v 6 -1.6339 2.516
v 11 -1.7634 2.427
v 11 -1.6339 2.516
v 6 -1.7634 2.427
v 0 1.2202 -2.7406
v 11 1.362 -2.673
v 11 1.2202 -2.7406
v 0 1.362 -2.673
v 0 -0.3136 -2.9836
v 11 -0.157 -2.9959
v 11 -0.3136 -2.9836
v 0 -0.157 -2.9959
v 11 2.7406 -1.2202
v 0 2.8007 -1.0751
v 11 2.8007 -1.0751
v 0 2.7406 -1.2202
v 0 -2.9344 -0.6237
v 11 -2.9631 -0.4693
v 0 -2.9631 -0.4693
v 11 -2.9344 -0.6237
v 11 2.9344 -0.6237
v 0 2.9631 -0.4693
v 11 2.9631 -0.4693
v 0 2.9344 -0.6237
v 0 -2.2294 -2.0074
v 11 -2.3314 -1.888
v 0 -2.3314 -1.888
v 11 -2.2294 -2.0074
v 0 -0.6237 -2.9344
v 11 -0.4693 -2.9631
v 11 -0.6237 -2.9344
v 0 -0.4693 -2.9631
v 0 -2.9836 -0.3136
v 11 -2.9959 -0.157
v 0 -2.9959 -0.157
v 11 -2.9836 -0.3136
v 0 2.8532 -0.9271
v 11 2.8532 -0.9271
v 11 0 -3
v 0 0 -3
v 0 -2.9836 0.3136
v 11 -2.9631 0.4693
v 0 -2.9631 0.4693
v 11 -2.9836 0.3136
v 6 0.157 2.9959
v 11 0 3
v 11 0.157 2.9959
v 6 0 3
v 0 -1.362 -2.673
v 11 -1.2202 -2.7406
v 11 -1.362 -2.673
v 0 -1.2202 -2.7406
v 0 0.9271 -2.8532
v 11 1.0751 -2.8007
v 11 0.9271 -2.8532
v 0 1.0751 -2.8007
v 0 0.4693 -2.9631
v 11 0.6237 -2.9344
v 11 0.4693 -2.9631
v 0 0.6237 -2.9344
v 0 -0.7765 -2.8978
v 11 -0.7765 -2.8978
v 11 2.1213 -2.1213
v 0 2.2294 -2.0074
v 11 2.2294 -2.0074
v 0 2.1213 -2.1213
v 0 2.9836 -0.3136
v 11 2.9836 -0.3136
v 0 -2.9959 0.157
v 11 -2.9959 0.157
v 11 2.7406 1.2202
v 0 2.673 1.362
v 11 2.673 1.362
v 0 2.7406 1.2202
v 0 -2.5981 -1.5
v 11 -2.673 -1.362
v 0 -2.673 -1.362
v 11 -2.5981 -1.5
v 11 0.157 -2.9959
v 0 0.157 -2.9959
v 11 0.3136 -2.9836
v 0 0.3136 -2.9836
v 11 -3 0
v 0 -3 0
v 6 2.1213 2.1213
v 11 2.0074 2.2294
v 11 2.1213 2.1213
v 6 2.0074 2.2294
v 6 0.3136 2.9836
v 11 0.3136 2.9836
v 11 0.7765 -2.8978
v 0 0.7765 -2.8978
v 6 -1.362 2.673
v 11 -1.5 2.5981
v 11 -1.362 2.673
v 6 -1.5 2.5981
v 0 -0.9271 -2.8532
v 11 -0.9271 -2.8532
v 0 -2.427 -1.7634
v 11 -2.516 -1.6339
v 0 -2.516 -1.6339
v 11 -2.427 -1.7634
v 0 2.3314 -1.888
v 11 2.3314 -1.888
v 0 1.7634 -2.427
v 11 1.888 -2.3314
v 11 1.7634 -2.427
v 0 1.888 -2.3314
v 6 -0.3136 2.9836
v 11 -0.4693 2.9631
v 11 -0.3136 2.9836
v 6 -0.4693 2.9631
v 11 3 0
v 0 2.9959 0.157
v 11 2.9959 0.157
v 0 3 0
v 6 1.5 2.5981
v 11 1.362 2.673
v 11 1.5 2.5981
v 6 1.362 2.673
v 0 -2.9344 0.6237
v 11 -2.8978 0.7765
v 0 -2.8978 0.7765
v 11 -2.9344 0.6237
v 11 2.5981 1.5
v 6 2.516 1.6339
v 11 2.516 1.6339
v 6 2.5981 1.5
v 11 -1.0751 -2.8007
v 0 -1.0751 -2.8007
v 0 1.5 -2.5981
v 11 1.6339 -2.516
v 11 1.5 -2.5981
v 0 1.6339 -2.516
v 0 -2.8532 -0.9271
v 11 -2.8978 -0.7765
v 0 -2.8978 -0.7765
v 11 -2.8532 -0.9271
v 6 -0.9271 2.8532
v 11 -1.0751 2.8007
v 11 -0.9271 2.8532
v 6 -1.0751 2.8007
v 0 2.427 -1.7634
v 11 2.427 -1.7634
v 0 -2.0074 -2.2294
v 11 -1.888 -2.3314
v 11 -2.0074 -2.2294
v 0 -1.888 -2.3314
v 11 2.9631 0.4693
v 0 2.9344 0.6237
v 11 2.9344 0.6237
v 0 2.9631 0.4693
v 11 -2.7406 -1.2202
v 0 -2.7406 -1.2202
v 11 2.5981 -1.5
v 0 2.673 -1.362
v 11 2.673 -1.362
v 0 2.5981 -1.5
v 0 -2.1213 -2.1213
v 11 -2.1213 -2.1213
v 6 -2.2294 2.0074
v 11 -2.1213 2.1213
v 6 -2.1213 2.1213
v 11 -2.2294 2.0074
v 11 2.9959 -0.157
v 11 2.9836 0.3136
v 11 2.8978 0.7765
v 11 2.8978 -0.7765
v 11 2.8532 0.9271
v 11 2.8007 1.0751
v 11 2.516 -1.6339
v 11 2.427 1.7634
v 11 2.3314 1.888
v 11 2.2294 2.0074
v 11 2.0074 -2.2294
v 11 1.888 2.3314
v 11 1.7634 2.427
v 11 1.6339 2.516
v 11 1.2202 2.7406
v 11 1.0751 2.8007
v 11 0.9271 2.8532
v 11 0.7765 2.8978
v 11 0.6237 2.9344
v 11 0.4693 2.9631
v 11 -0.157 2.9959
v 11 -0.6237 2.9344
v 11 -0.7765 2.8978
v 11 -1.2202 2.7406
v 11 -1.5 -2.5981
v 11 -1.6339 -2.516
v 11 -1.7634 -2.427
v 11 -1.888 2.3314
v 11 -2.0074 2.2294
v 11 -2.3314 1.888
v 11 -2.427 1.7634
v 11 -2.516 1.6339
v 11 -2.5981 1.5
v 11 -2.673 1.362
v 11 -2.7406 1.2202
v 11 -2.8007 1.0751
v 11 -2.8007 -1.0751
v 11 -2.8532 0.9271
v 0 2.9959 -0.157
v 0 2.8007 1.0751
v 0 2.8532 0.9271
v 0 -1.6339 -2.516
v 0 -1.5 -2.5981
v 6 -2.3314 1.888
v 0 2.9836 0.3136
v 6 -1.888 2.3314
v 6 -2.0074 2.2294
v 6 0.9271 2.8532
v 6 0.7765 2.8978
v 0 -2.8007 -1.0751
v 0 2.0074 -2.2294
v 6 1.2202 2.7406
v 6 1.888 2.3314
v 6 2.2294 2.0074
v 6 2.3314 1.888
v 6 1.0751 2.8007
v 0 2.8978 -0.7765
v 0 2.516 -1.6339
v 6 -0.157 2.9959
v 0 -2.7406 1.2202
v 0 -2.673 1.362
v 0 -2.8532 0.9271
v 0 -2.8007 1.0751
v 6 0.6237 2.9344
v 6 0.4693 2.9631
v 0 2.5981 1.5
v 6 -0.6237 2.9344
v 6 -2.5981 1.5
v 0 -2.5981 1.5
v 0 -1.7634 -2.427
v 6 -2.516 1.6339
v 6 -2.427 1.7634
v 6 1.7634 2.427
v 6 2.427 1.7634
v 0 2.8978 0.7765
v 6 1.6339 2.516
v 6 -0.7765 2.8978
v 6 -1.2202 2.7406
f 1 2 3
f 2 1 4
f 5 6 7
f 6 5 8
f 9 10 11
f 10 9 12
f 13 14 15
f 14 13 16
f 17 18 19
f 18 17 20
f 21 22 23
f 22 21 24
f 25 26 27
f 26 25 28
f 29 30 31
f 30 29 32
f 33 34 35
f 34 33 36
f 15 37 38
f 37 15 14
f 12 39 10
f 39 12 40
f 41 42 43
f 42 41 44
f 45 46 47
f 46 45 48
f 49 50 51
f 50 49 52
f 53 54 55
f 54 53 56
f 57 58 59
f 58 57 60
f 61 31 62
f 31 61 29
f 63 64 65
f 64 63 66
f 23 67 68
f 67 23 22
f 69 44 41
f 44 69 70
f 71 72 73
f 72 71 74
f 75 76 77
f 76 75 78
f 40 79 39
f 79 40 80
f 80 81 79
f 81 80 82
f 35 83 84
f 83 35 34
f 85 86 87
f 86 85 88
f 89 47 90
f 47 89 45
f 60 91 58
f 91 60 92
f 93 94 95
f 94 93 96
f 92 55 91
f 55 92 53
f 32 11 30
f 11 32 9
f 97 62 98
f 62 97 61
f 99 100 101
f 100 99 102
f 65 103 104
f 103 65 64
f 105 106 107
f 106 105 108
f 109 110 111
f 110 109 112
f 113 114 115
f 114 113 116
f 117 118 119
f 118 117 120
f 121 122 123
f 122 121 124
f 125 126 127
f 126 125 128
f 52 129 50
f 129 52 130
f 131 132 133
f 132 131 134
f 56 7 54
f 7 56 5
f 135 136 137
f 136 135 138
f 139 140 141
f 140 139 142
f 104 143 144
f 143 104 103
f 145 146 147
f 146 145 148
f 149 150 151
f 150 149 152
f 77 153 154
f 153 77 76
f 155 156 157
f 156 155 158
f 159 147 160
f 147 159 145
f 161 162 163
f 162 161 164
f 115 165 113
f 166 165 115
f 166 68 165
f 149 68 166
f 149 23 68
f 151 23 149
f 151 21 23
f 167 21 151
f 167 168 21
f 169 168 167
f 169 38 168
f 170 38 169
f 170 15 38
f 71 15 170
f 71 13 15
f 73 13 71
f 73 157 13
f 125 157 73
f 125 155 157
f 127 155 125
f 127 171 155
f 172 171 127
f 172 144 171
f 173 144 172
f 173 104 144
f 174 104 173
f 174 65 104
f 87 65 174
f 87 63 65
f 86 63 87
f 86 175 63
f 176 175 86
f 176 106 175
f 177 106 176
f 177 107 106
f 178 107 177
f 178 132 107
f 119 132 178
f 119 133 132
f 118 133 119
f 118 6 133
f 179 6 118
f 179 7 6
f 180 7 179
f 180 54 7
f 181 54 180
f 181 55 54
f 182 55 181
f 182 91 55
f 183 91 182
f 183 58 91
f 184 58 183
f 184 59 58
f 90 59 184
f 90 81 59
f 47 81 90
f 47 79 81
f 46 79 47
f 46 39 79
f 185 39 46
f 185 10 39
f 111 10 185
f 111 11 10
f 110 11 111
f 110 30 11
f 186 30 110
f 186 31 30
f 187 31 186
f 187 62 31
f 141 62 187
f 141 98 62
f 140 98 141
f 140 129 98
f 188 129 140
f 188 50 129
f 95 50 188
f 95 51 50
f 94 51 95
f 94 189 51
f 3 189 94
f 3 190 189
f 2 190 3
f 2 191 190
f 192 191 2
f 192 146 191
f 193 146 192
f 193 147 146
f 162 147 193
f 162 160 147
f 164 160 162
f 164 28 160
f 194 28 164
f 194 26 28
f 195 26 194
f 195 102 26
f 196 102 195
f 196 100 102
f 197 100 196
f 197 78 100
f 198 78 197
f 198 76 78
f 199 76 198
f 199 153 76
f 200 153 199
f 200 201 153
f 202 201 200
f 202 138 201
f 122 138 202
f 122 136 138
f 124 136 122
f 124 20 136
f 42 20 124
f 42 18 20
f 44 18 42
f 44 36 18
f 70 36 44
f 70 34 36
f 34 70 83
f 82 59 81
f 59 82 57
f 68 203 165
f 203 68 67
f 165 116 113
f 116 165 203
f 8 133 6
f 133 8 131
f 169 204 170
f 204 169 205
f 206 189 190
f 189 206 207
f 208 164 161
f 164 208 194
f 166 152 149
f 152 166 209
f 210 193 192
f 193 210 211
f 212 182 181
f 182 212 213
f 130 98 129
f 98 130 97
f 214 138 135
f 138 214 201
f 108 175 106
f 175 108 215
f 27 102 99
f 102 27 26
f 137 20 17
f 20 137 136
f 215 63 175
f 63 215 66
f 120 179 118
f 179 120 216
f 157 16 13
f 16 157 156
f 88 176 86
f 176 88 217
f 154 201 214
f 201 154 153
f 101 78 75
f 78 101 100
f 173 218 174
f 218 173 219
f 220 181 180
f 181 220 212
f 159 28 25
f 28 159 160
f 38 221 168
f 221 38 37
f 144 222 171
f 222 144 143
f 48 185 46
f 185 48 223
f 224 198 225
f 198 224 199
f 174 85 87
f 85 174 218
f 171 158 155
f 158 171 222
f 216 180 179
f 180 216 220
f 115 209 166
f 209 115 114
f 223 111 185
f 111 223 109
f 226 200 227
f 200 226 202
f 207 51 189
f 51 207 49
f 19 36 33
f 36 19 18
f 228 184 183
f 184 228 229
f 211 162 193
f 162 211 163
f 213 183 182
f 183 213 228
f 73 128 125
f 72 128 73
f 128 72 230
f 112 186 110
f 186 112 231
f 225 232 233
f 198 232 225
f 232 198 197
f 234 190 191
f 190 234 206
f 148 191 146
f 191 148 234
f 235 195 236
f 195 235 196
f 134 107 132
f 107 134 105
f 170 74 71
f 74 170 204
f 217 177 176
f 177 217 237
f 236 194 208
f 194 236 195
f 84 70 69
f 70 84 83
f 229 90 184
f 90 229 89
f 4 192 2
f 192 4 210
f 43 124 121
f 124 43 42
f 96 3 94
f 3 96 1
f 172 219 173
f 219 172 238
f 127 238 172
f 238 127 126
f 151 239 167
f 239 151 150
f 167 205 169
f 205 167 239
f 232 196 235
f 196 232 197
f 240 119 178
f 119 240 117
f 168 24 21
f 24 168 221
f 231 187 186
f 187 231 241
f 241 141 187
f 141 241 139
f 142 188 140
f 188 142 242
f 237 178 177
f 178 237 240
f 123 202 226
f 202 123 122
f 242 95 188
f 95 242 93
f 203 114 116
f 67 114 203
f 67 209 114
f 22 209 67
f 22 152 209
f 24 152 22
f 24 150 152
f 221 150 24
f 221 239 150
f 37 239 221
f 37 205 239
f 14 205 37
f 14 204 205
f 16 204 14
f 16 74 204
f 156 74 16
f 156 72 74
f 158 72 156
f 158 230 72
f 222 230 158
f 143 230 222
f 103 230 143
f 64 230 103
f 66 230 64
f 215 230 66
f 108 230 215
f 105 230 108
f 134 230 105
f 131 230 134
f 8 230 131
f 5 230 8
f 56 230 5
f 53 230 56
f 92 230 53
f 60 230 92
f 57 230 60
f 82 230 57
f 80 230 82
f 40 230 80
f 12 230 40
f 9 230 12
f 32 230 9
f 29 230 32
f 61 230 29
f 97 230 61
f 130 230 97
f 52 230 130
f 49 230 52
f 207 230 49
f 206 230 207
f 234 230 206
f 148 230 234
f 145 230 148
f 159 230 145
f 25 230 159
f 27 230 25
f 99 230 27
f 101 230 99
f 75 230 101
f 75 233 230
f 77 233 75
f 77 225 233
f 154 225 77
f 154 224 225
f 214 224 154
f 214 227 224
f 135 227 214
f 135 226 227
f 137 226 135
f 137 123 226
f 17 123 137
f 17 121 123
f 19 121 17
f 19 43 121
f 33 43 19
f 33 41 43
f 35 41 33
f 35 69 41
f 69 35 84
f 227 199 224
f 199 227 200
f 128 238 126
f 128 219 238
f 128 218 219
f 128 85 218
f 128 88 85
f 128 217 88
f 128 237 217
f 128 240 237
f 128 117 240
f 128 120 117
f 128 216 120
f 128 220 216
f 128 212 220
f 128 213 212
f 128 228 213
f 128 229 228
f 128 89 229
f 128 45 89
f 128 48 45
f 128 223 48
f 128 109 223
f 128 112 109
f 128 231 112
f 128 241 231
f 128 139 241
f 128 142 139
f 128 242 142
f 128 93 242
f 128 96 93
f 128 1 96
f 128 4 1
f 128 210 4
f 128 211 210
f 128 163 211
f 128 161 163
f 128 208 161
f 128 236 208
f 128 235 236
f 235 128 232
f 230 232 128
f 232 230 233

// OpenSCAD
module encoder_shaft() {
    // 6mm diameter, 6mm flat, 6mm 
    difference() {
        // make 11mm total len to have 6 + 3 + 2 (alignent plate is 3mm) 
    rotate([0,90,0]) cylinder(h=11, d=6, $fn=6*20);
    translate([0,-3,1.5]) cube([6,6,3]);
    }
 }
 
 
 encoder_shaft();
